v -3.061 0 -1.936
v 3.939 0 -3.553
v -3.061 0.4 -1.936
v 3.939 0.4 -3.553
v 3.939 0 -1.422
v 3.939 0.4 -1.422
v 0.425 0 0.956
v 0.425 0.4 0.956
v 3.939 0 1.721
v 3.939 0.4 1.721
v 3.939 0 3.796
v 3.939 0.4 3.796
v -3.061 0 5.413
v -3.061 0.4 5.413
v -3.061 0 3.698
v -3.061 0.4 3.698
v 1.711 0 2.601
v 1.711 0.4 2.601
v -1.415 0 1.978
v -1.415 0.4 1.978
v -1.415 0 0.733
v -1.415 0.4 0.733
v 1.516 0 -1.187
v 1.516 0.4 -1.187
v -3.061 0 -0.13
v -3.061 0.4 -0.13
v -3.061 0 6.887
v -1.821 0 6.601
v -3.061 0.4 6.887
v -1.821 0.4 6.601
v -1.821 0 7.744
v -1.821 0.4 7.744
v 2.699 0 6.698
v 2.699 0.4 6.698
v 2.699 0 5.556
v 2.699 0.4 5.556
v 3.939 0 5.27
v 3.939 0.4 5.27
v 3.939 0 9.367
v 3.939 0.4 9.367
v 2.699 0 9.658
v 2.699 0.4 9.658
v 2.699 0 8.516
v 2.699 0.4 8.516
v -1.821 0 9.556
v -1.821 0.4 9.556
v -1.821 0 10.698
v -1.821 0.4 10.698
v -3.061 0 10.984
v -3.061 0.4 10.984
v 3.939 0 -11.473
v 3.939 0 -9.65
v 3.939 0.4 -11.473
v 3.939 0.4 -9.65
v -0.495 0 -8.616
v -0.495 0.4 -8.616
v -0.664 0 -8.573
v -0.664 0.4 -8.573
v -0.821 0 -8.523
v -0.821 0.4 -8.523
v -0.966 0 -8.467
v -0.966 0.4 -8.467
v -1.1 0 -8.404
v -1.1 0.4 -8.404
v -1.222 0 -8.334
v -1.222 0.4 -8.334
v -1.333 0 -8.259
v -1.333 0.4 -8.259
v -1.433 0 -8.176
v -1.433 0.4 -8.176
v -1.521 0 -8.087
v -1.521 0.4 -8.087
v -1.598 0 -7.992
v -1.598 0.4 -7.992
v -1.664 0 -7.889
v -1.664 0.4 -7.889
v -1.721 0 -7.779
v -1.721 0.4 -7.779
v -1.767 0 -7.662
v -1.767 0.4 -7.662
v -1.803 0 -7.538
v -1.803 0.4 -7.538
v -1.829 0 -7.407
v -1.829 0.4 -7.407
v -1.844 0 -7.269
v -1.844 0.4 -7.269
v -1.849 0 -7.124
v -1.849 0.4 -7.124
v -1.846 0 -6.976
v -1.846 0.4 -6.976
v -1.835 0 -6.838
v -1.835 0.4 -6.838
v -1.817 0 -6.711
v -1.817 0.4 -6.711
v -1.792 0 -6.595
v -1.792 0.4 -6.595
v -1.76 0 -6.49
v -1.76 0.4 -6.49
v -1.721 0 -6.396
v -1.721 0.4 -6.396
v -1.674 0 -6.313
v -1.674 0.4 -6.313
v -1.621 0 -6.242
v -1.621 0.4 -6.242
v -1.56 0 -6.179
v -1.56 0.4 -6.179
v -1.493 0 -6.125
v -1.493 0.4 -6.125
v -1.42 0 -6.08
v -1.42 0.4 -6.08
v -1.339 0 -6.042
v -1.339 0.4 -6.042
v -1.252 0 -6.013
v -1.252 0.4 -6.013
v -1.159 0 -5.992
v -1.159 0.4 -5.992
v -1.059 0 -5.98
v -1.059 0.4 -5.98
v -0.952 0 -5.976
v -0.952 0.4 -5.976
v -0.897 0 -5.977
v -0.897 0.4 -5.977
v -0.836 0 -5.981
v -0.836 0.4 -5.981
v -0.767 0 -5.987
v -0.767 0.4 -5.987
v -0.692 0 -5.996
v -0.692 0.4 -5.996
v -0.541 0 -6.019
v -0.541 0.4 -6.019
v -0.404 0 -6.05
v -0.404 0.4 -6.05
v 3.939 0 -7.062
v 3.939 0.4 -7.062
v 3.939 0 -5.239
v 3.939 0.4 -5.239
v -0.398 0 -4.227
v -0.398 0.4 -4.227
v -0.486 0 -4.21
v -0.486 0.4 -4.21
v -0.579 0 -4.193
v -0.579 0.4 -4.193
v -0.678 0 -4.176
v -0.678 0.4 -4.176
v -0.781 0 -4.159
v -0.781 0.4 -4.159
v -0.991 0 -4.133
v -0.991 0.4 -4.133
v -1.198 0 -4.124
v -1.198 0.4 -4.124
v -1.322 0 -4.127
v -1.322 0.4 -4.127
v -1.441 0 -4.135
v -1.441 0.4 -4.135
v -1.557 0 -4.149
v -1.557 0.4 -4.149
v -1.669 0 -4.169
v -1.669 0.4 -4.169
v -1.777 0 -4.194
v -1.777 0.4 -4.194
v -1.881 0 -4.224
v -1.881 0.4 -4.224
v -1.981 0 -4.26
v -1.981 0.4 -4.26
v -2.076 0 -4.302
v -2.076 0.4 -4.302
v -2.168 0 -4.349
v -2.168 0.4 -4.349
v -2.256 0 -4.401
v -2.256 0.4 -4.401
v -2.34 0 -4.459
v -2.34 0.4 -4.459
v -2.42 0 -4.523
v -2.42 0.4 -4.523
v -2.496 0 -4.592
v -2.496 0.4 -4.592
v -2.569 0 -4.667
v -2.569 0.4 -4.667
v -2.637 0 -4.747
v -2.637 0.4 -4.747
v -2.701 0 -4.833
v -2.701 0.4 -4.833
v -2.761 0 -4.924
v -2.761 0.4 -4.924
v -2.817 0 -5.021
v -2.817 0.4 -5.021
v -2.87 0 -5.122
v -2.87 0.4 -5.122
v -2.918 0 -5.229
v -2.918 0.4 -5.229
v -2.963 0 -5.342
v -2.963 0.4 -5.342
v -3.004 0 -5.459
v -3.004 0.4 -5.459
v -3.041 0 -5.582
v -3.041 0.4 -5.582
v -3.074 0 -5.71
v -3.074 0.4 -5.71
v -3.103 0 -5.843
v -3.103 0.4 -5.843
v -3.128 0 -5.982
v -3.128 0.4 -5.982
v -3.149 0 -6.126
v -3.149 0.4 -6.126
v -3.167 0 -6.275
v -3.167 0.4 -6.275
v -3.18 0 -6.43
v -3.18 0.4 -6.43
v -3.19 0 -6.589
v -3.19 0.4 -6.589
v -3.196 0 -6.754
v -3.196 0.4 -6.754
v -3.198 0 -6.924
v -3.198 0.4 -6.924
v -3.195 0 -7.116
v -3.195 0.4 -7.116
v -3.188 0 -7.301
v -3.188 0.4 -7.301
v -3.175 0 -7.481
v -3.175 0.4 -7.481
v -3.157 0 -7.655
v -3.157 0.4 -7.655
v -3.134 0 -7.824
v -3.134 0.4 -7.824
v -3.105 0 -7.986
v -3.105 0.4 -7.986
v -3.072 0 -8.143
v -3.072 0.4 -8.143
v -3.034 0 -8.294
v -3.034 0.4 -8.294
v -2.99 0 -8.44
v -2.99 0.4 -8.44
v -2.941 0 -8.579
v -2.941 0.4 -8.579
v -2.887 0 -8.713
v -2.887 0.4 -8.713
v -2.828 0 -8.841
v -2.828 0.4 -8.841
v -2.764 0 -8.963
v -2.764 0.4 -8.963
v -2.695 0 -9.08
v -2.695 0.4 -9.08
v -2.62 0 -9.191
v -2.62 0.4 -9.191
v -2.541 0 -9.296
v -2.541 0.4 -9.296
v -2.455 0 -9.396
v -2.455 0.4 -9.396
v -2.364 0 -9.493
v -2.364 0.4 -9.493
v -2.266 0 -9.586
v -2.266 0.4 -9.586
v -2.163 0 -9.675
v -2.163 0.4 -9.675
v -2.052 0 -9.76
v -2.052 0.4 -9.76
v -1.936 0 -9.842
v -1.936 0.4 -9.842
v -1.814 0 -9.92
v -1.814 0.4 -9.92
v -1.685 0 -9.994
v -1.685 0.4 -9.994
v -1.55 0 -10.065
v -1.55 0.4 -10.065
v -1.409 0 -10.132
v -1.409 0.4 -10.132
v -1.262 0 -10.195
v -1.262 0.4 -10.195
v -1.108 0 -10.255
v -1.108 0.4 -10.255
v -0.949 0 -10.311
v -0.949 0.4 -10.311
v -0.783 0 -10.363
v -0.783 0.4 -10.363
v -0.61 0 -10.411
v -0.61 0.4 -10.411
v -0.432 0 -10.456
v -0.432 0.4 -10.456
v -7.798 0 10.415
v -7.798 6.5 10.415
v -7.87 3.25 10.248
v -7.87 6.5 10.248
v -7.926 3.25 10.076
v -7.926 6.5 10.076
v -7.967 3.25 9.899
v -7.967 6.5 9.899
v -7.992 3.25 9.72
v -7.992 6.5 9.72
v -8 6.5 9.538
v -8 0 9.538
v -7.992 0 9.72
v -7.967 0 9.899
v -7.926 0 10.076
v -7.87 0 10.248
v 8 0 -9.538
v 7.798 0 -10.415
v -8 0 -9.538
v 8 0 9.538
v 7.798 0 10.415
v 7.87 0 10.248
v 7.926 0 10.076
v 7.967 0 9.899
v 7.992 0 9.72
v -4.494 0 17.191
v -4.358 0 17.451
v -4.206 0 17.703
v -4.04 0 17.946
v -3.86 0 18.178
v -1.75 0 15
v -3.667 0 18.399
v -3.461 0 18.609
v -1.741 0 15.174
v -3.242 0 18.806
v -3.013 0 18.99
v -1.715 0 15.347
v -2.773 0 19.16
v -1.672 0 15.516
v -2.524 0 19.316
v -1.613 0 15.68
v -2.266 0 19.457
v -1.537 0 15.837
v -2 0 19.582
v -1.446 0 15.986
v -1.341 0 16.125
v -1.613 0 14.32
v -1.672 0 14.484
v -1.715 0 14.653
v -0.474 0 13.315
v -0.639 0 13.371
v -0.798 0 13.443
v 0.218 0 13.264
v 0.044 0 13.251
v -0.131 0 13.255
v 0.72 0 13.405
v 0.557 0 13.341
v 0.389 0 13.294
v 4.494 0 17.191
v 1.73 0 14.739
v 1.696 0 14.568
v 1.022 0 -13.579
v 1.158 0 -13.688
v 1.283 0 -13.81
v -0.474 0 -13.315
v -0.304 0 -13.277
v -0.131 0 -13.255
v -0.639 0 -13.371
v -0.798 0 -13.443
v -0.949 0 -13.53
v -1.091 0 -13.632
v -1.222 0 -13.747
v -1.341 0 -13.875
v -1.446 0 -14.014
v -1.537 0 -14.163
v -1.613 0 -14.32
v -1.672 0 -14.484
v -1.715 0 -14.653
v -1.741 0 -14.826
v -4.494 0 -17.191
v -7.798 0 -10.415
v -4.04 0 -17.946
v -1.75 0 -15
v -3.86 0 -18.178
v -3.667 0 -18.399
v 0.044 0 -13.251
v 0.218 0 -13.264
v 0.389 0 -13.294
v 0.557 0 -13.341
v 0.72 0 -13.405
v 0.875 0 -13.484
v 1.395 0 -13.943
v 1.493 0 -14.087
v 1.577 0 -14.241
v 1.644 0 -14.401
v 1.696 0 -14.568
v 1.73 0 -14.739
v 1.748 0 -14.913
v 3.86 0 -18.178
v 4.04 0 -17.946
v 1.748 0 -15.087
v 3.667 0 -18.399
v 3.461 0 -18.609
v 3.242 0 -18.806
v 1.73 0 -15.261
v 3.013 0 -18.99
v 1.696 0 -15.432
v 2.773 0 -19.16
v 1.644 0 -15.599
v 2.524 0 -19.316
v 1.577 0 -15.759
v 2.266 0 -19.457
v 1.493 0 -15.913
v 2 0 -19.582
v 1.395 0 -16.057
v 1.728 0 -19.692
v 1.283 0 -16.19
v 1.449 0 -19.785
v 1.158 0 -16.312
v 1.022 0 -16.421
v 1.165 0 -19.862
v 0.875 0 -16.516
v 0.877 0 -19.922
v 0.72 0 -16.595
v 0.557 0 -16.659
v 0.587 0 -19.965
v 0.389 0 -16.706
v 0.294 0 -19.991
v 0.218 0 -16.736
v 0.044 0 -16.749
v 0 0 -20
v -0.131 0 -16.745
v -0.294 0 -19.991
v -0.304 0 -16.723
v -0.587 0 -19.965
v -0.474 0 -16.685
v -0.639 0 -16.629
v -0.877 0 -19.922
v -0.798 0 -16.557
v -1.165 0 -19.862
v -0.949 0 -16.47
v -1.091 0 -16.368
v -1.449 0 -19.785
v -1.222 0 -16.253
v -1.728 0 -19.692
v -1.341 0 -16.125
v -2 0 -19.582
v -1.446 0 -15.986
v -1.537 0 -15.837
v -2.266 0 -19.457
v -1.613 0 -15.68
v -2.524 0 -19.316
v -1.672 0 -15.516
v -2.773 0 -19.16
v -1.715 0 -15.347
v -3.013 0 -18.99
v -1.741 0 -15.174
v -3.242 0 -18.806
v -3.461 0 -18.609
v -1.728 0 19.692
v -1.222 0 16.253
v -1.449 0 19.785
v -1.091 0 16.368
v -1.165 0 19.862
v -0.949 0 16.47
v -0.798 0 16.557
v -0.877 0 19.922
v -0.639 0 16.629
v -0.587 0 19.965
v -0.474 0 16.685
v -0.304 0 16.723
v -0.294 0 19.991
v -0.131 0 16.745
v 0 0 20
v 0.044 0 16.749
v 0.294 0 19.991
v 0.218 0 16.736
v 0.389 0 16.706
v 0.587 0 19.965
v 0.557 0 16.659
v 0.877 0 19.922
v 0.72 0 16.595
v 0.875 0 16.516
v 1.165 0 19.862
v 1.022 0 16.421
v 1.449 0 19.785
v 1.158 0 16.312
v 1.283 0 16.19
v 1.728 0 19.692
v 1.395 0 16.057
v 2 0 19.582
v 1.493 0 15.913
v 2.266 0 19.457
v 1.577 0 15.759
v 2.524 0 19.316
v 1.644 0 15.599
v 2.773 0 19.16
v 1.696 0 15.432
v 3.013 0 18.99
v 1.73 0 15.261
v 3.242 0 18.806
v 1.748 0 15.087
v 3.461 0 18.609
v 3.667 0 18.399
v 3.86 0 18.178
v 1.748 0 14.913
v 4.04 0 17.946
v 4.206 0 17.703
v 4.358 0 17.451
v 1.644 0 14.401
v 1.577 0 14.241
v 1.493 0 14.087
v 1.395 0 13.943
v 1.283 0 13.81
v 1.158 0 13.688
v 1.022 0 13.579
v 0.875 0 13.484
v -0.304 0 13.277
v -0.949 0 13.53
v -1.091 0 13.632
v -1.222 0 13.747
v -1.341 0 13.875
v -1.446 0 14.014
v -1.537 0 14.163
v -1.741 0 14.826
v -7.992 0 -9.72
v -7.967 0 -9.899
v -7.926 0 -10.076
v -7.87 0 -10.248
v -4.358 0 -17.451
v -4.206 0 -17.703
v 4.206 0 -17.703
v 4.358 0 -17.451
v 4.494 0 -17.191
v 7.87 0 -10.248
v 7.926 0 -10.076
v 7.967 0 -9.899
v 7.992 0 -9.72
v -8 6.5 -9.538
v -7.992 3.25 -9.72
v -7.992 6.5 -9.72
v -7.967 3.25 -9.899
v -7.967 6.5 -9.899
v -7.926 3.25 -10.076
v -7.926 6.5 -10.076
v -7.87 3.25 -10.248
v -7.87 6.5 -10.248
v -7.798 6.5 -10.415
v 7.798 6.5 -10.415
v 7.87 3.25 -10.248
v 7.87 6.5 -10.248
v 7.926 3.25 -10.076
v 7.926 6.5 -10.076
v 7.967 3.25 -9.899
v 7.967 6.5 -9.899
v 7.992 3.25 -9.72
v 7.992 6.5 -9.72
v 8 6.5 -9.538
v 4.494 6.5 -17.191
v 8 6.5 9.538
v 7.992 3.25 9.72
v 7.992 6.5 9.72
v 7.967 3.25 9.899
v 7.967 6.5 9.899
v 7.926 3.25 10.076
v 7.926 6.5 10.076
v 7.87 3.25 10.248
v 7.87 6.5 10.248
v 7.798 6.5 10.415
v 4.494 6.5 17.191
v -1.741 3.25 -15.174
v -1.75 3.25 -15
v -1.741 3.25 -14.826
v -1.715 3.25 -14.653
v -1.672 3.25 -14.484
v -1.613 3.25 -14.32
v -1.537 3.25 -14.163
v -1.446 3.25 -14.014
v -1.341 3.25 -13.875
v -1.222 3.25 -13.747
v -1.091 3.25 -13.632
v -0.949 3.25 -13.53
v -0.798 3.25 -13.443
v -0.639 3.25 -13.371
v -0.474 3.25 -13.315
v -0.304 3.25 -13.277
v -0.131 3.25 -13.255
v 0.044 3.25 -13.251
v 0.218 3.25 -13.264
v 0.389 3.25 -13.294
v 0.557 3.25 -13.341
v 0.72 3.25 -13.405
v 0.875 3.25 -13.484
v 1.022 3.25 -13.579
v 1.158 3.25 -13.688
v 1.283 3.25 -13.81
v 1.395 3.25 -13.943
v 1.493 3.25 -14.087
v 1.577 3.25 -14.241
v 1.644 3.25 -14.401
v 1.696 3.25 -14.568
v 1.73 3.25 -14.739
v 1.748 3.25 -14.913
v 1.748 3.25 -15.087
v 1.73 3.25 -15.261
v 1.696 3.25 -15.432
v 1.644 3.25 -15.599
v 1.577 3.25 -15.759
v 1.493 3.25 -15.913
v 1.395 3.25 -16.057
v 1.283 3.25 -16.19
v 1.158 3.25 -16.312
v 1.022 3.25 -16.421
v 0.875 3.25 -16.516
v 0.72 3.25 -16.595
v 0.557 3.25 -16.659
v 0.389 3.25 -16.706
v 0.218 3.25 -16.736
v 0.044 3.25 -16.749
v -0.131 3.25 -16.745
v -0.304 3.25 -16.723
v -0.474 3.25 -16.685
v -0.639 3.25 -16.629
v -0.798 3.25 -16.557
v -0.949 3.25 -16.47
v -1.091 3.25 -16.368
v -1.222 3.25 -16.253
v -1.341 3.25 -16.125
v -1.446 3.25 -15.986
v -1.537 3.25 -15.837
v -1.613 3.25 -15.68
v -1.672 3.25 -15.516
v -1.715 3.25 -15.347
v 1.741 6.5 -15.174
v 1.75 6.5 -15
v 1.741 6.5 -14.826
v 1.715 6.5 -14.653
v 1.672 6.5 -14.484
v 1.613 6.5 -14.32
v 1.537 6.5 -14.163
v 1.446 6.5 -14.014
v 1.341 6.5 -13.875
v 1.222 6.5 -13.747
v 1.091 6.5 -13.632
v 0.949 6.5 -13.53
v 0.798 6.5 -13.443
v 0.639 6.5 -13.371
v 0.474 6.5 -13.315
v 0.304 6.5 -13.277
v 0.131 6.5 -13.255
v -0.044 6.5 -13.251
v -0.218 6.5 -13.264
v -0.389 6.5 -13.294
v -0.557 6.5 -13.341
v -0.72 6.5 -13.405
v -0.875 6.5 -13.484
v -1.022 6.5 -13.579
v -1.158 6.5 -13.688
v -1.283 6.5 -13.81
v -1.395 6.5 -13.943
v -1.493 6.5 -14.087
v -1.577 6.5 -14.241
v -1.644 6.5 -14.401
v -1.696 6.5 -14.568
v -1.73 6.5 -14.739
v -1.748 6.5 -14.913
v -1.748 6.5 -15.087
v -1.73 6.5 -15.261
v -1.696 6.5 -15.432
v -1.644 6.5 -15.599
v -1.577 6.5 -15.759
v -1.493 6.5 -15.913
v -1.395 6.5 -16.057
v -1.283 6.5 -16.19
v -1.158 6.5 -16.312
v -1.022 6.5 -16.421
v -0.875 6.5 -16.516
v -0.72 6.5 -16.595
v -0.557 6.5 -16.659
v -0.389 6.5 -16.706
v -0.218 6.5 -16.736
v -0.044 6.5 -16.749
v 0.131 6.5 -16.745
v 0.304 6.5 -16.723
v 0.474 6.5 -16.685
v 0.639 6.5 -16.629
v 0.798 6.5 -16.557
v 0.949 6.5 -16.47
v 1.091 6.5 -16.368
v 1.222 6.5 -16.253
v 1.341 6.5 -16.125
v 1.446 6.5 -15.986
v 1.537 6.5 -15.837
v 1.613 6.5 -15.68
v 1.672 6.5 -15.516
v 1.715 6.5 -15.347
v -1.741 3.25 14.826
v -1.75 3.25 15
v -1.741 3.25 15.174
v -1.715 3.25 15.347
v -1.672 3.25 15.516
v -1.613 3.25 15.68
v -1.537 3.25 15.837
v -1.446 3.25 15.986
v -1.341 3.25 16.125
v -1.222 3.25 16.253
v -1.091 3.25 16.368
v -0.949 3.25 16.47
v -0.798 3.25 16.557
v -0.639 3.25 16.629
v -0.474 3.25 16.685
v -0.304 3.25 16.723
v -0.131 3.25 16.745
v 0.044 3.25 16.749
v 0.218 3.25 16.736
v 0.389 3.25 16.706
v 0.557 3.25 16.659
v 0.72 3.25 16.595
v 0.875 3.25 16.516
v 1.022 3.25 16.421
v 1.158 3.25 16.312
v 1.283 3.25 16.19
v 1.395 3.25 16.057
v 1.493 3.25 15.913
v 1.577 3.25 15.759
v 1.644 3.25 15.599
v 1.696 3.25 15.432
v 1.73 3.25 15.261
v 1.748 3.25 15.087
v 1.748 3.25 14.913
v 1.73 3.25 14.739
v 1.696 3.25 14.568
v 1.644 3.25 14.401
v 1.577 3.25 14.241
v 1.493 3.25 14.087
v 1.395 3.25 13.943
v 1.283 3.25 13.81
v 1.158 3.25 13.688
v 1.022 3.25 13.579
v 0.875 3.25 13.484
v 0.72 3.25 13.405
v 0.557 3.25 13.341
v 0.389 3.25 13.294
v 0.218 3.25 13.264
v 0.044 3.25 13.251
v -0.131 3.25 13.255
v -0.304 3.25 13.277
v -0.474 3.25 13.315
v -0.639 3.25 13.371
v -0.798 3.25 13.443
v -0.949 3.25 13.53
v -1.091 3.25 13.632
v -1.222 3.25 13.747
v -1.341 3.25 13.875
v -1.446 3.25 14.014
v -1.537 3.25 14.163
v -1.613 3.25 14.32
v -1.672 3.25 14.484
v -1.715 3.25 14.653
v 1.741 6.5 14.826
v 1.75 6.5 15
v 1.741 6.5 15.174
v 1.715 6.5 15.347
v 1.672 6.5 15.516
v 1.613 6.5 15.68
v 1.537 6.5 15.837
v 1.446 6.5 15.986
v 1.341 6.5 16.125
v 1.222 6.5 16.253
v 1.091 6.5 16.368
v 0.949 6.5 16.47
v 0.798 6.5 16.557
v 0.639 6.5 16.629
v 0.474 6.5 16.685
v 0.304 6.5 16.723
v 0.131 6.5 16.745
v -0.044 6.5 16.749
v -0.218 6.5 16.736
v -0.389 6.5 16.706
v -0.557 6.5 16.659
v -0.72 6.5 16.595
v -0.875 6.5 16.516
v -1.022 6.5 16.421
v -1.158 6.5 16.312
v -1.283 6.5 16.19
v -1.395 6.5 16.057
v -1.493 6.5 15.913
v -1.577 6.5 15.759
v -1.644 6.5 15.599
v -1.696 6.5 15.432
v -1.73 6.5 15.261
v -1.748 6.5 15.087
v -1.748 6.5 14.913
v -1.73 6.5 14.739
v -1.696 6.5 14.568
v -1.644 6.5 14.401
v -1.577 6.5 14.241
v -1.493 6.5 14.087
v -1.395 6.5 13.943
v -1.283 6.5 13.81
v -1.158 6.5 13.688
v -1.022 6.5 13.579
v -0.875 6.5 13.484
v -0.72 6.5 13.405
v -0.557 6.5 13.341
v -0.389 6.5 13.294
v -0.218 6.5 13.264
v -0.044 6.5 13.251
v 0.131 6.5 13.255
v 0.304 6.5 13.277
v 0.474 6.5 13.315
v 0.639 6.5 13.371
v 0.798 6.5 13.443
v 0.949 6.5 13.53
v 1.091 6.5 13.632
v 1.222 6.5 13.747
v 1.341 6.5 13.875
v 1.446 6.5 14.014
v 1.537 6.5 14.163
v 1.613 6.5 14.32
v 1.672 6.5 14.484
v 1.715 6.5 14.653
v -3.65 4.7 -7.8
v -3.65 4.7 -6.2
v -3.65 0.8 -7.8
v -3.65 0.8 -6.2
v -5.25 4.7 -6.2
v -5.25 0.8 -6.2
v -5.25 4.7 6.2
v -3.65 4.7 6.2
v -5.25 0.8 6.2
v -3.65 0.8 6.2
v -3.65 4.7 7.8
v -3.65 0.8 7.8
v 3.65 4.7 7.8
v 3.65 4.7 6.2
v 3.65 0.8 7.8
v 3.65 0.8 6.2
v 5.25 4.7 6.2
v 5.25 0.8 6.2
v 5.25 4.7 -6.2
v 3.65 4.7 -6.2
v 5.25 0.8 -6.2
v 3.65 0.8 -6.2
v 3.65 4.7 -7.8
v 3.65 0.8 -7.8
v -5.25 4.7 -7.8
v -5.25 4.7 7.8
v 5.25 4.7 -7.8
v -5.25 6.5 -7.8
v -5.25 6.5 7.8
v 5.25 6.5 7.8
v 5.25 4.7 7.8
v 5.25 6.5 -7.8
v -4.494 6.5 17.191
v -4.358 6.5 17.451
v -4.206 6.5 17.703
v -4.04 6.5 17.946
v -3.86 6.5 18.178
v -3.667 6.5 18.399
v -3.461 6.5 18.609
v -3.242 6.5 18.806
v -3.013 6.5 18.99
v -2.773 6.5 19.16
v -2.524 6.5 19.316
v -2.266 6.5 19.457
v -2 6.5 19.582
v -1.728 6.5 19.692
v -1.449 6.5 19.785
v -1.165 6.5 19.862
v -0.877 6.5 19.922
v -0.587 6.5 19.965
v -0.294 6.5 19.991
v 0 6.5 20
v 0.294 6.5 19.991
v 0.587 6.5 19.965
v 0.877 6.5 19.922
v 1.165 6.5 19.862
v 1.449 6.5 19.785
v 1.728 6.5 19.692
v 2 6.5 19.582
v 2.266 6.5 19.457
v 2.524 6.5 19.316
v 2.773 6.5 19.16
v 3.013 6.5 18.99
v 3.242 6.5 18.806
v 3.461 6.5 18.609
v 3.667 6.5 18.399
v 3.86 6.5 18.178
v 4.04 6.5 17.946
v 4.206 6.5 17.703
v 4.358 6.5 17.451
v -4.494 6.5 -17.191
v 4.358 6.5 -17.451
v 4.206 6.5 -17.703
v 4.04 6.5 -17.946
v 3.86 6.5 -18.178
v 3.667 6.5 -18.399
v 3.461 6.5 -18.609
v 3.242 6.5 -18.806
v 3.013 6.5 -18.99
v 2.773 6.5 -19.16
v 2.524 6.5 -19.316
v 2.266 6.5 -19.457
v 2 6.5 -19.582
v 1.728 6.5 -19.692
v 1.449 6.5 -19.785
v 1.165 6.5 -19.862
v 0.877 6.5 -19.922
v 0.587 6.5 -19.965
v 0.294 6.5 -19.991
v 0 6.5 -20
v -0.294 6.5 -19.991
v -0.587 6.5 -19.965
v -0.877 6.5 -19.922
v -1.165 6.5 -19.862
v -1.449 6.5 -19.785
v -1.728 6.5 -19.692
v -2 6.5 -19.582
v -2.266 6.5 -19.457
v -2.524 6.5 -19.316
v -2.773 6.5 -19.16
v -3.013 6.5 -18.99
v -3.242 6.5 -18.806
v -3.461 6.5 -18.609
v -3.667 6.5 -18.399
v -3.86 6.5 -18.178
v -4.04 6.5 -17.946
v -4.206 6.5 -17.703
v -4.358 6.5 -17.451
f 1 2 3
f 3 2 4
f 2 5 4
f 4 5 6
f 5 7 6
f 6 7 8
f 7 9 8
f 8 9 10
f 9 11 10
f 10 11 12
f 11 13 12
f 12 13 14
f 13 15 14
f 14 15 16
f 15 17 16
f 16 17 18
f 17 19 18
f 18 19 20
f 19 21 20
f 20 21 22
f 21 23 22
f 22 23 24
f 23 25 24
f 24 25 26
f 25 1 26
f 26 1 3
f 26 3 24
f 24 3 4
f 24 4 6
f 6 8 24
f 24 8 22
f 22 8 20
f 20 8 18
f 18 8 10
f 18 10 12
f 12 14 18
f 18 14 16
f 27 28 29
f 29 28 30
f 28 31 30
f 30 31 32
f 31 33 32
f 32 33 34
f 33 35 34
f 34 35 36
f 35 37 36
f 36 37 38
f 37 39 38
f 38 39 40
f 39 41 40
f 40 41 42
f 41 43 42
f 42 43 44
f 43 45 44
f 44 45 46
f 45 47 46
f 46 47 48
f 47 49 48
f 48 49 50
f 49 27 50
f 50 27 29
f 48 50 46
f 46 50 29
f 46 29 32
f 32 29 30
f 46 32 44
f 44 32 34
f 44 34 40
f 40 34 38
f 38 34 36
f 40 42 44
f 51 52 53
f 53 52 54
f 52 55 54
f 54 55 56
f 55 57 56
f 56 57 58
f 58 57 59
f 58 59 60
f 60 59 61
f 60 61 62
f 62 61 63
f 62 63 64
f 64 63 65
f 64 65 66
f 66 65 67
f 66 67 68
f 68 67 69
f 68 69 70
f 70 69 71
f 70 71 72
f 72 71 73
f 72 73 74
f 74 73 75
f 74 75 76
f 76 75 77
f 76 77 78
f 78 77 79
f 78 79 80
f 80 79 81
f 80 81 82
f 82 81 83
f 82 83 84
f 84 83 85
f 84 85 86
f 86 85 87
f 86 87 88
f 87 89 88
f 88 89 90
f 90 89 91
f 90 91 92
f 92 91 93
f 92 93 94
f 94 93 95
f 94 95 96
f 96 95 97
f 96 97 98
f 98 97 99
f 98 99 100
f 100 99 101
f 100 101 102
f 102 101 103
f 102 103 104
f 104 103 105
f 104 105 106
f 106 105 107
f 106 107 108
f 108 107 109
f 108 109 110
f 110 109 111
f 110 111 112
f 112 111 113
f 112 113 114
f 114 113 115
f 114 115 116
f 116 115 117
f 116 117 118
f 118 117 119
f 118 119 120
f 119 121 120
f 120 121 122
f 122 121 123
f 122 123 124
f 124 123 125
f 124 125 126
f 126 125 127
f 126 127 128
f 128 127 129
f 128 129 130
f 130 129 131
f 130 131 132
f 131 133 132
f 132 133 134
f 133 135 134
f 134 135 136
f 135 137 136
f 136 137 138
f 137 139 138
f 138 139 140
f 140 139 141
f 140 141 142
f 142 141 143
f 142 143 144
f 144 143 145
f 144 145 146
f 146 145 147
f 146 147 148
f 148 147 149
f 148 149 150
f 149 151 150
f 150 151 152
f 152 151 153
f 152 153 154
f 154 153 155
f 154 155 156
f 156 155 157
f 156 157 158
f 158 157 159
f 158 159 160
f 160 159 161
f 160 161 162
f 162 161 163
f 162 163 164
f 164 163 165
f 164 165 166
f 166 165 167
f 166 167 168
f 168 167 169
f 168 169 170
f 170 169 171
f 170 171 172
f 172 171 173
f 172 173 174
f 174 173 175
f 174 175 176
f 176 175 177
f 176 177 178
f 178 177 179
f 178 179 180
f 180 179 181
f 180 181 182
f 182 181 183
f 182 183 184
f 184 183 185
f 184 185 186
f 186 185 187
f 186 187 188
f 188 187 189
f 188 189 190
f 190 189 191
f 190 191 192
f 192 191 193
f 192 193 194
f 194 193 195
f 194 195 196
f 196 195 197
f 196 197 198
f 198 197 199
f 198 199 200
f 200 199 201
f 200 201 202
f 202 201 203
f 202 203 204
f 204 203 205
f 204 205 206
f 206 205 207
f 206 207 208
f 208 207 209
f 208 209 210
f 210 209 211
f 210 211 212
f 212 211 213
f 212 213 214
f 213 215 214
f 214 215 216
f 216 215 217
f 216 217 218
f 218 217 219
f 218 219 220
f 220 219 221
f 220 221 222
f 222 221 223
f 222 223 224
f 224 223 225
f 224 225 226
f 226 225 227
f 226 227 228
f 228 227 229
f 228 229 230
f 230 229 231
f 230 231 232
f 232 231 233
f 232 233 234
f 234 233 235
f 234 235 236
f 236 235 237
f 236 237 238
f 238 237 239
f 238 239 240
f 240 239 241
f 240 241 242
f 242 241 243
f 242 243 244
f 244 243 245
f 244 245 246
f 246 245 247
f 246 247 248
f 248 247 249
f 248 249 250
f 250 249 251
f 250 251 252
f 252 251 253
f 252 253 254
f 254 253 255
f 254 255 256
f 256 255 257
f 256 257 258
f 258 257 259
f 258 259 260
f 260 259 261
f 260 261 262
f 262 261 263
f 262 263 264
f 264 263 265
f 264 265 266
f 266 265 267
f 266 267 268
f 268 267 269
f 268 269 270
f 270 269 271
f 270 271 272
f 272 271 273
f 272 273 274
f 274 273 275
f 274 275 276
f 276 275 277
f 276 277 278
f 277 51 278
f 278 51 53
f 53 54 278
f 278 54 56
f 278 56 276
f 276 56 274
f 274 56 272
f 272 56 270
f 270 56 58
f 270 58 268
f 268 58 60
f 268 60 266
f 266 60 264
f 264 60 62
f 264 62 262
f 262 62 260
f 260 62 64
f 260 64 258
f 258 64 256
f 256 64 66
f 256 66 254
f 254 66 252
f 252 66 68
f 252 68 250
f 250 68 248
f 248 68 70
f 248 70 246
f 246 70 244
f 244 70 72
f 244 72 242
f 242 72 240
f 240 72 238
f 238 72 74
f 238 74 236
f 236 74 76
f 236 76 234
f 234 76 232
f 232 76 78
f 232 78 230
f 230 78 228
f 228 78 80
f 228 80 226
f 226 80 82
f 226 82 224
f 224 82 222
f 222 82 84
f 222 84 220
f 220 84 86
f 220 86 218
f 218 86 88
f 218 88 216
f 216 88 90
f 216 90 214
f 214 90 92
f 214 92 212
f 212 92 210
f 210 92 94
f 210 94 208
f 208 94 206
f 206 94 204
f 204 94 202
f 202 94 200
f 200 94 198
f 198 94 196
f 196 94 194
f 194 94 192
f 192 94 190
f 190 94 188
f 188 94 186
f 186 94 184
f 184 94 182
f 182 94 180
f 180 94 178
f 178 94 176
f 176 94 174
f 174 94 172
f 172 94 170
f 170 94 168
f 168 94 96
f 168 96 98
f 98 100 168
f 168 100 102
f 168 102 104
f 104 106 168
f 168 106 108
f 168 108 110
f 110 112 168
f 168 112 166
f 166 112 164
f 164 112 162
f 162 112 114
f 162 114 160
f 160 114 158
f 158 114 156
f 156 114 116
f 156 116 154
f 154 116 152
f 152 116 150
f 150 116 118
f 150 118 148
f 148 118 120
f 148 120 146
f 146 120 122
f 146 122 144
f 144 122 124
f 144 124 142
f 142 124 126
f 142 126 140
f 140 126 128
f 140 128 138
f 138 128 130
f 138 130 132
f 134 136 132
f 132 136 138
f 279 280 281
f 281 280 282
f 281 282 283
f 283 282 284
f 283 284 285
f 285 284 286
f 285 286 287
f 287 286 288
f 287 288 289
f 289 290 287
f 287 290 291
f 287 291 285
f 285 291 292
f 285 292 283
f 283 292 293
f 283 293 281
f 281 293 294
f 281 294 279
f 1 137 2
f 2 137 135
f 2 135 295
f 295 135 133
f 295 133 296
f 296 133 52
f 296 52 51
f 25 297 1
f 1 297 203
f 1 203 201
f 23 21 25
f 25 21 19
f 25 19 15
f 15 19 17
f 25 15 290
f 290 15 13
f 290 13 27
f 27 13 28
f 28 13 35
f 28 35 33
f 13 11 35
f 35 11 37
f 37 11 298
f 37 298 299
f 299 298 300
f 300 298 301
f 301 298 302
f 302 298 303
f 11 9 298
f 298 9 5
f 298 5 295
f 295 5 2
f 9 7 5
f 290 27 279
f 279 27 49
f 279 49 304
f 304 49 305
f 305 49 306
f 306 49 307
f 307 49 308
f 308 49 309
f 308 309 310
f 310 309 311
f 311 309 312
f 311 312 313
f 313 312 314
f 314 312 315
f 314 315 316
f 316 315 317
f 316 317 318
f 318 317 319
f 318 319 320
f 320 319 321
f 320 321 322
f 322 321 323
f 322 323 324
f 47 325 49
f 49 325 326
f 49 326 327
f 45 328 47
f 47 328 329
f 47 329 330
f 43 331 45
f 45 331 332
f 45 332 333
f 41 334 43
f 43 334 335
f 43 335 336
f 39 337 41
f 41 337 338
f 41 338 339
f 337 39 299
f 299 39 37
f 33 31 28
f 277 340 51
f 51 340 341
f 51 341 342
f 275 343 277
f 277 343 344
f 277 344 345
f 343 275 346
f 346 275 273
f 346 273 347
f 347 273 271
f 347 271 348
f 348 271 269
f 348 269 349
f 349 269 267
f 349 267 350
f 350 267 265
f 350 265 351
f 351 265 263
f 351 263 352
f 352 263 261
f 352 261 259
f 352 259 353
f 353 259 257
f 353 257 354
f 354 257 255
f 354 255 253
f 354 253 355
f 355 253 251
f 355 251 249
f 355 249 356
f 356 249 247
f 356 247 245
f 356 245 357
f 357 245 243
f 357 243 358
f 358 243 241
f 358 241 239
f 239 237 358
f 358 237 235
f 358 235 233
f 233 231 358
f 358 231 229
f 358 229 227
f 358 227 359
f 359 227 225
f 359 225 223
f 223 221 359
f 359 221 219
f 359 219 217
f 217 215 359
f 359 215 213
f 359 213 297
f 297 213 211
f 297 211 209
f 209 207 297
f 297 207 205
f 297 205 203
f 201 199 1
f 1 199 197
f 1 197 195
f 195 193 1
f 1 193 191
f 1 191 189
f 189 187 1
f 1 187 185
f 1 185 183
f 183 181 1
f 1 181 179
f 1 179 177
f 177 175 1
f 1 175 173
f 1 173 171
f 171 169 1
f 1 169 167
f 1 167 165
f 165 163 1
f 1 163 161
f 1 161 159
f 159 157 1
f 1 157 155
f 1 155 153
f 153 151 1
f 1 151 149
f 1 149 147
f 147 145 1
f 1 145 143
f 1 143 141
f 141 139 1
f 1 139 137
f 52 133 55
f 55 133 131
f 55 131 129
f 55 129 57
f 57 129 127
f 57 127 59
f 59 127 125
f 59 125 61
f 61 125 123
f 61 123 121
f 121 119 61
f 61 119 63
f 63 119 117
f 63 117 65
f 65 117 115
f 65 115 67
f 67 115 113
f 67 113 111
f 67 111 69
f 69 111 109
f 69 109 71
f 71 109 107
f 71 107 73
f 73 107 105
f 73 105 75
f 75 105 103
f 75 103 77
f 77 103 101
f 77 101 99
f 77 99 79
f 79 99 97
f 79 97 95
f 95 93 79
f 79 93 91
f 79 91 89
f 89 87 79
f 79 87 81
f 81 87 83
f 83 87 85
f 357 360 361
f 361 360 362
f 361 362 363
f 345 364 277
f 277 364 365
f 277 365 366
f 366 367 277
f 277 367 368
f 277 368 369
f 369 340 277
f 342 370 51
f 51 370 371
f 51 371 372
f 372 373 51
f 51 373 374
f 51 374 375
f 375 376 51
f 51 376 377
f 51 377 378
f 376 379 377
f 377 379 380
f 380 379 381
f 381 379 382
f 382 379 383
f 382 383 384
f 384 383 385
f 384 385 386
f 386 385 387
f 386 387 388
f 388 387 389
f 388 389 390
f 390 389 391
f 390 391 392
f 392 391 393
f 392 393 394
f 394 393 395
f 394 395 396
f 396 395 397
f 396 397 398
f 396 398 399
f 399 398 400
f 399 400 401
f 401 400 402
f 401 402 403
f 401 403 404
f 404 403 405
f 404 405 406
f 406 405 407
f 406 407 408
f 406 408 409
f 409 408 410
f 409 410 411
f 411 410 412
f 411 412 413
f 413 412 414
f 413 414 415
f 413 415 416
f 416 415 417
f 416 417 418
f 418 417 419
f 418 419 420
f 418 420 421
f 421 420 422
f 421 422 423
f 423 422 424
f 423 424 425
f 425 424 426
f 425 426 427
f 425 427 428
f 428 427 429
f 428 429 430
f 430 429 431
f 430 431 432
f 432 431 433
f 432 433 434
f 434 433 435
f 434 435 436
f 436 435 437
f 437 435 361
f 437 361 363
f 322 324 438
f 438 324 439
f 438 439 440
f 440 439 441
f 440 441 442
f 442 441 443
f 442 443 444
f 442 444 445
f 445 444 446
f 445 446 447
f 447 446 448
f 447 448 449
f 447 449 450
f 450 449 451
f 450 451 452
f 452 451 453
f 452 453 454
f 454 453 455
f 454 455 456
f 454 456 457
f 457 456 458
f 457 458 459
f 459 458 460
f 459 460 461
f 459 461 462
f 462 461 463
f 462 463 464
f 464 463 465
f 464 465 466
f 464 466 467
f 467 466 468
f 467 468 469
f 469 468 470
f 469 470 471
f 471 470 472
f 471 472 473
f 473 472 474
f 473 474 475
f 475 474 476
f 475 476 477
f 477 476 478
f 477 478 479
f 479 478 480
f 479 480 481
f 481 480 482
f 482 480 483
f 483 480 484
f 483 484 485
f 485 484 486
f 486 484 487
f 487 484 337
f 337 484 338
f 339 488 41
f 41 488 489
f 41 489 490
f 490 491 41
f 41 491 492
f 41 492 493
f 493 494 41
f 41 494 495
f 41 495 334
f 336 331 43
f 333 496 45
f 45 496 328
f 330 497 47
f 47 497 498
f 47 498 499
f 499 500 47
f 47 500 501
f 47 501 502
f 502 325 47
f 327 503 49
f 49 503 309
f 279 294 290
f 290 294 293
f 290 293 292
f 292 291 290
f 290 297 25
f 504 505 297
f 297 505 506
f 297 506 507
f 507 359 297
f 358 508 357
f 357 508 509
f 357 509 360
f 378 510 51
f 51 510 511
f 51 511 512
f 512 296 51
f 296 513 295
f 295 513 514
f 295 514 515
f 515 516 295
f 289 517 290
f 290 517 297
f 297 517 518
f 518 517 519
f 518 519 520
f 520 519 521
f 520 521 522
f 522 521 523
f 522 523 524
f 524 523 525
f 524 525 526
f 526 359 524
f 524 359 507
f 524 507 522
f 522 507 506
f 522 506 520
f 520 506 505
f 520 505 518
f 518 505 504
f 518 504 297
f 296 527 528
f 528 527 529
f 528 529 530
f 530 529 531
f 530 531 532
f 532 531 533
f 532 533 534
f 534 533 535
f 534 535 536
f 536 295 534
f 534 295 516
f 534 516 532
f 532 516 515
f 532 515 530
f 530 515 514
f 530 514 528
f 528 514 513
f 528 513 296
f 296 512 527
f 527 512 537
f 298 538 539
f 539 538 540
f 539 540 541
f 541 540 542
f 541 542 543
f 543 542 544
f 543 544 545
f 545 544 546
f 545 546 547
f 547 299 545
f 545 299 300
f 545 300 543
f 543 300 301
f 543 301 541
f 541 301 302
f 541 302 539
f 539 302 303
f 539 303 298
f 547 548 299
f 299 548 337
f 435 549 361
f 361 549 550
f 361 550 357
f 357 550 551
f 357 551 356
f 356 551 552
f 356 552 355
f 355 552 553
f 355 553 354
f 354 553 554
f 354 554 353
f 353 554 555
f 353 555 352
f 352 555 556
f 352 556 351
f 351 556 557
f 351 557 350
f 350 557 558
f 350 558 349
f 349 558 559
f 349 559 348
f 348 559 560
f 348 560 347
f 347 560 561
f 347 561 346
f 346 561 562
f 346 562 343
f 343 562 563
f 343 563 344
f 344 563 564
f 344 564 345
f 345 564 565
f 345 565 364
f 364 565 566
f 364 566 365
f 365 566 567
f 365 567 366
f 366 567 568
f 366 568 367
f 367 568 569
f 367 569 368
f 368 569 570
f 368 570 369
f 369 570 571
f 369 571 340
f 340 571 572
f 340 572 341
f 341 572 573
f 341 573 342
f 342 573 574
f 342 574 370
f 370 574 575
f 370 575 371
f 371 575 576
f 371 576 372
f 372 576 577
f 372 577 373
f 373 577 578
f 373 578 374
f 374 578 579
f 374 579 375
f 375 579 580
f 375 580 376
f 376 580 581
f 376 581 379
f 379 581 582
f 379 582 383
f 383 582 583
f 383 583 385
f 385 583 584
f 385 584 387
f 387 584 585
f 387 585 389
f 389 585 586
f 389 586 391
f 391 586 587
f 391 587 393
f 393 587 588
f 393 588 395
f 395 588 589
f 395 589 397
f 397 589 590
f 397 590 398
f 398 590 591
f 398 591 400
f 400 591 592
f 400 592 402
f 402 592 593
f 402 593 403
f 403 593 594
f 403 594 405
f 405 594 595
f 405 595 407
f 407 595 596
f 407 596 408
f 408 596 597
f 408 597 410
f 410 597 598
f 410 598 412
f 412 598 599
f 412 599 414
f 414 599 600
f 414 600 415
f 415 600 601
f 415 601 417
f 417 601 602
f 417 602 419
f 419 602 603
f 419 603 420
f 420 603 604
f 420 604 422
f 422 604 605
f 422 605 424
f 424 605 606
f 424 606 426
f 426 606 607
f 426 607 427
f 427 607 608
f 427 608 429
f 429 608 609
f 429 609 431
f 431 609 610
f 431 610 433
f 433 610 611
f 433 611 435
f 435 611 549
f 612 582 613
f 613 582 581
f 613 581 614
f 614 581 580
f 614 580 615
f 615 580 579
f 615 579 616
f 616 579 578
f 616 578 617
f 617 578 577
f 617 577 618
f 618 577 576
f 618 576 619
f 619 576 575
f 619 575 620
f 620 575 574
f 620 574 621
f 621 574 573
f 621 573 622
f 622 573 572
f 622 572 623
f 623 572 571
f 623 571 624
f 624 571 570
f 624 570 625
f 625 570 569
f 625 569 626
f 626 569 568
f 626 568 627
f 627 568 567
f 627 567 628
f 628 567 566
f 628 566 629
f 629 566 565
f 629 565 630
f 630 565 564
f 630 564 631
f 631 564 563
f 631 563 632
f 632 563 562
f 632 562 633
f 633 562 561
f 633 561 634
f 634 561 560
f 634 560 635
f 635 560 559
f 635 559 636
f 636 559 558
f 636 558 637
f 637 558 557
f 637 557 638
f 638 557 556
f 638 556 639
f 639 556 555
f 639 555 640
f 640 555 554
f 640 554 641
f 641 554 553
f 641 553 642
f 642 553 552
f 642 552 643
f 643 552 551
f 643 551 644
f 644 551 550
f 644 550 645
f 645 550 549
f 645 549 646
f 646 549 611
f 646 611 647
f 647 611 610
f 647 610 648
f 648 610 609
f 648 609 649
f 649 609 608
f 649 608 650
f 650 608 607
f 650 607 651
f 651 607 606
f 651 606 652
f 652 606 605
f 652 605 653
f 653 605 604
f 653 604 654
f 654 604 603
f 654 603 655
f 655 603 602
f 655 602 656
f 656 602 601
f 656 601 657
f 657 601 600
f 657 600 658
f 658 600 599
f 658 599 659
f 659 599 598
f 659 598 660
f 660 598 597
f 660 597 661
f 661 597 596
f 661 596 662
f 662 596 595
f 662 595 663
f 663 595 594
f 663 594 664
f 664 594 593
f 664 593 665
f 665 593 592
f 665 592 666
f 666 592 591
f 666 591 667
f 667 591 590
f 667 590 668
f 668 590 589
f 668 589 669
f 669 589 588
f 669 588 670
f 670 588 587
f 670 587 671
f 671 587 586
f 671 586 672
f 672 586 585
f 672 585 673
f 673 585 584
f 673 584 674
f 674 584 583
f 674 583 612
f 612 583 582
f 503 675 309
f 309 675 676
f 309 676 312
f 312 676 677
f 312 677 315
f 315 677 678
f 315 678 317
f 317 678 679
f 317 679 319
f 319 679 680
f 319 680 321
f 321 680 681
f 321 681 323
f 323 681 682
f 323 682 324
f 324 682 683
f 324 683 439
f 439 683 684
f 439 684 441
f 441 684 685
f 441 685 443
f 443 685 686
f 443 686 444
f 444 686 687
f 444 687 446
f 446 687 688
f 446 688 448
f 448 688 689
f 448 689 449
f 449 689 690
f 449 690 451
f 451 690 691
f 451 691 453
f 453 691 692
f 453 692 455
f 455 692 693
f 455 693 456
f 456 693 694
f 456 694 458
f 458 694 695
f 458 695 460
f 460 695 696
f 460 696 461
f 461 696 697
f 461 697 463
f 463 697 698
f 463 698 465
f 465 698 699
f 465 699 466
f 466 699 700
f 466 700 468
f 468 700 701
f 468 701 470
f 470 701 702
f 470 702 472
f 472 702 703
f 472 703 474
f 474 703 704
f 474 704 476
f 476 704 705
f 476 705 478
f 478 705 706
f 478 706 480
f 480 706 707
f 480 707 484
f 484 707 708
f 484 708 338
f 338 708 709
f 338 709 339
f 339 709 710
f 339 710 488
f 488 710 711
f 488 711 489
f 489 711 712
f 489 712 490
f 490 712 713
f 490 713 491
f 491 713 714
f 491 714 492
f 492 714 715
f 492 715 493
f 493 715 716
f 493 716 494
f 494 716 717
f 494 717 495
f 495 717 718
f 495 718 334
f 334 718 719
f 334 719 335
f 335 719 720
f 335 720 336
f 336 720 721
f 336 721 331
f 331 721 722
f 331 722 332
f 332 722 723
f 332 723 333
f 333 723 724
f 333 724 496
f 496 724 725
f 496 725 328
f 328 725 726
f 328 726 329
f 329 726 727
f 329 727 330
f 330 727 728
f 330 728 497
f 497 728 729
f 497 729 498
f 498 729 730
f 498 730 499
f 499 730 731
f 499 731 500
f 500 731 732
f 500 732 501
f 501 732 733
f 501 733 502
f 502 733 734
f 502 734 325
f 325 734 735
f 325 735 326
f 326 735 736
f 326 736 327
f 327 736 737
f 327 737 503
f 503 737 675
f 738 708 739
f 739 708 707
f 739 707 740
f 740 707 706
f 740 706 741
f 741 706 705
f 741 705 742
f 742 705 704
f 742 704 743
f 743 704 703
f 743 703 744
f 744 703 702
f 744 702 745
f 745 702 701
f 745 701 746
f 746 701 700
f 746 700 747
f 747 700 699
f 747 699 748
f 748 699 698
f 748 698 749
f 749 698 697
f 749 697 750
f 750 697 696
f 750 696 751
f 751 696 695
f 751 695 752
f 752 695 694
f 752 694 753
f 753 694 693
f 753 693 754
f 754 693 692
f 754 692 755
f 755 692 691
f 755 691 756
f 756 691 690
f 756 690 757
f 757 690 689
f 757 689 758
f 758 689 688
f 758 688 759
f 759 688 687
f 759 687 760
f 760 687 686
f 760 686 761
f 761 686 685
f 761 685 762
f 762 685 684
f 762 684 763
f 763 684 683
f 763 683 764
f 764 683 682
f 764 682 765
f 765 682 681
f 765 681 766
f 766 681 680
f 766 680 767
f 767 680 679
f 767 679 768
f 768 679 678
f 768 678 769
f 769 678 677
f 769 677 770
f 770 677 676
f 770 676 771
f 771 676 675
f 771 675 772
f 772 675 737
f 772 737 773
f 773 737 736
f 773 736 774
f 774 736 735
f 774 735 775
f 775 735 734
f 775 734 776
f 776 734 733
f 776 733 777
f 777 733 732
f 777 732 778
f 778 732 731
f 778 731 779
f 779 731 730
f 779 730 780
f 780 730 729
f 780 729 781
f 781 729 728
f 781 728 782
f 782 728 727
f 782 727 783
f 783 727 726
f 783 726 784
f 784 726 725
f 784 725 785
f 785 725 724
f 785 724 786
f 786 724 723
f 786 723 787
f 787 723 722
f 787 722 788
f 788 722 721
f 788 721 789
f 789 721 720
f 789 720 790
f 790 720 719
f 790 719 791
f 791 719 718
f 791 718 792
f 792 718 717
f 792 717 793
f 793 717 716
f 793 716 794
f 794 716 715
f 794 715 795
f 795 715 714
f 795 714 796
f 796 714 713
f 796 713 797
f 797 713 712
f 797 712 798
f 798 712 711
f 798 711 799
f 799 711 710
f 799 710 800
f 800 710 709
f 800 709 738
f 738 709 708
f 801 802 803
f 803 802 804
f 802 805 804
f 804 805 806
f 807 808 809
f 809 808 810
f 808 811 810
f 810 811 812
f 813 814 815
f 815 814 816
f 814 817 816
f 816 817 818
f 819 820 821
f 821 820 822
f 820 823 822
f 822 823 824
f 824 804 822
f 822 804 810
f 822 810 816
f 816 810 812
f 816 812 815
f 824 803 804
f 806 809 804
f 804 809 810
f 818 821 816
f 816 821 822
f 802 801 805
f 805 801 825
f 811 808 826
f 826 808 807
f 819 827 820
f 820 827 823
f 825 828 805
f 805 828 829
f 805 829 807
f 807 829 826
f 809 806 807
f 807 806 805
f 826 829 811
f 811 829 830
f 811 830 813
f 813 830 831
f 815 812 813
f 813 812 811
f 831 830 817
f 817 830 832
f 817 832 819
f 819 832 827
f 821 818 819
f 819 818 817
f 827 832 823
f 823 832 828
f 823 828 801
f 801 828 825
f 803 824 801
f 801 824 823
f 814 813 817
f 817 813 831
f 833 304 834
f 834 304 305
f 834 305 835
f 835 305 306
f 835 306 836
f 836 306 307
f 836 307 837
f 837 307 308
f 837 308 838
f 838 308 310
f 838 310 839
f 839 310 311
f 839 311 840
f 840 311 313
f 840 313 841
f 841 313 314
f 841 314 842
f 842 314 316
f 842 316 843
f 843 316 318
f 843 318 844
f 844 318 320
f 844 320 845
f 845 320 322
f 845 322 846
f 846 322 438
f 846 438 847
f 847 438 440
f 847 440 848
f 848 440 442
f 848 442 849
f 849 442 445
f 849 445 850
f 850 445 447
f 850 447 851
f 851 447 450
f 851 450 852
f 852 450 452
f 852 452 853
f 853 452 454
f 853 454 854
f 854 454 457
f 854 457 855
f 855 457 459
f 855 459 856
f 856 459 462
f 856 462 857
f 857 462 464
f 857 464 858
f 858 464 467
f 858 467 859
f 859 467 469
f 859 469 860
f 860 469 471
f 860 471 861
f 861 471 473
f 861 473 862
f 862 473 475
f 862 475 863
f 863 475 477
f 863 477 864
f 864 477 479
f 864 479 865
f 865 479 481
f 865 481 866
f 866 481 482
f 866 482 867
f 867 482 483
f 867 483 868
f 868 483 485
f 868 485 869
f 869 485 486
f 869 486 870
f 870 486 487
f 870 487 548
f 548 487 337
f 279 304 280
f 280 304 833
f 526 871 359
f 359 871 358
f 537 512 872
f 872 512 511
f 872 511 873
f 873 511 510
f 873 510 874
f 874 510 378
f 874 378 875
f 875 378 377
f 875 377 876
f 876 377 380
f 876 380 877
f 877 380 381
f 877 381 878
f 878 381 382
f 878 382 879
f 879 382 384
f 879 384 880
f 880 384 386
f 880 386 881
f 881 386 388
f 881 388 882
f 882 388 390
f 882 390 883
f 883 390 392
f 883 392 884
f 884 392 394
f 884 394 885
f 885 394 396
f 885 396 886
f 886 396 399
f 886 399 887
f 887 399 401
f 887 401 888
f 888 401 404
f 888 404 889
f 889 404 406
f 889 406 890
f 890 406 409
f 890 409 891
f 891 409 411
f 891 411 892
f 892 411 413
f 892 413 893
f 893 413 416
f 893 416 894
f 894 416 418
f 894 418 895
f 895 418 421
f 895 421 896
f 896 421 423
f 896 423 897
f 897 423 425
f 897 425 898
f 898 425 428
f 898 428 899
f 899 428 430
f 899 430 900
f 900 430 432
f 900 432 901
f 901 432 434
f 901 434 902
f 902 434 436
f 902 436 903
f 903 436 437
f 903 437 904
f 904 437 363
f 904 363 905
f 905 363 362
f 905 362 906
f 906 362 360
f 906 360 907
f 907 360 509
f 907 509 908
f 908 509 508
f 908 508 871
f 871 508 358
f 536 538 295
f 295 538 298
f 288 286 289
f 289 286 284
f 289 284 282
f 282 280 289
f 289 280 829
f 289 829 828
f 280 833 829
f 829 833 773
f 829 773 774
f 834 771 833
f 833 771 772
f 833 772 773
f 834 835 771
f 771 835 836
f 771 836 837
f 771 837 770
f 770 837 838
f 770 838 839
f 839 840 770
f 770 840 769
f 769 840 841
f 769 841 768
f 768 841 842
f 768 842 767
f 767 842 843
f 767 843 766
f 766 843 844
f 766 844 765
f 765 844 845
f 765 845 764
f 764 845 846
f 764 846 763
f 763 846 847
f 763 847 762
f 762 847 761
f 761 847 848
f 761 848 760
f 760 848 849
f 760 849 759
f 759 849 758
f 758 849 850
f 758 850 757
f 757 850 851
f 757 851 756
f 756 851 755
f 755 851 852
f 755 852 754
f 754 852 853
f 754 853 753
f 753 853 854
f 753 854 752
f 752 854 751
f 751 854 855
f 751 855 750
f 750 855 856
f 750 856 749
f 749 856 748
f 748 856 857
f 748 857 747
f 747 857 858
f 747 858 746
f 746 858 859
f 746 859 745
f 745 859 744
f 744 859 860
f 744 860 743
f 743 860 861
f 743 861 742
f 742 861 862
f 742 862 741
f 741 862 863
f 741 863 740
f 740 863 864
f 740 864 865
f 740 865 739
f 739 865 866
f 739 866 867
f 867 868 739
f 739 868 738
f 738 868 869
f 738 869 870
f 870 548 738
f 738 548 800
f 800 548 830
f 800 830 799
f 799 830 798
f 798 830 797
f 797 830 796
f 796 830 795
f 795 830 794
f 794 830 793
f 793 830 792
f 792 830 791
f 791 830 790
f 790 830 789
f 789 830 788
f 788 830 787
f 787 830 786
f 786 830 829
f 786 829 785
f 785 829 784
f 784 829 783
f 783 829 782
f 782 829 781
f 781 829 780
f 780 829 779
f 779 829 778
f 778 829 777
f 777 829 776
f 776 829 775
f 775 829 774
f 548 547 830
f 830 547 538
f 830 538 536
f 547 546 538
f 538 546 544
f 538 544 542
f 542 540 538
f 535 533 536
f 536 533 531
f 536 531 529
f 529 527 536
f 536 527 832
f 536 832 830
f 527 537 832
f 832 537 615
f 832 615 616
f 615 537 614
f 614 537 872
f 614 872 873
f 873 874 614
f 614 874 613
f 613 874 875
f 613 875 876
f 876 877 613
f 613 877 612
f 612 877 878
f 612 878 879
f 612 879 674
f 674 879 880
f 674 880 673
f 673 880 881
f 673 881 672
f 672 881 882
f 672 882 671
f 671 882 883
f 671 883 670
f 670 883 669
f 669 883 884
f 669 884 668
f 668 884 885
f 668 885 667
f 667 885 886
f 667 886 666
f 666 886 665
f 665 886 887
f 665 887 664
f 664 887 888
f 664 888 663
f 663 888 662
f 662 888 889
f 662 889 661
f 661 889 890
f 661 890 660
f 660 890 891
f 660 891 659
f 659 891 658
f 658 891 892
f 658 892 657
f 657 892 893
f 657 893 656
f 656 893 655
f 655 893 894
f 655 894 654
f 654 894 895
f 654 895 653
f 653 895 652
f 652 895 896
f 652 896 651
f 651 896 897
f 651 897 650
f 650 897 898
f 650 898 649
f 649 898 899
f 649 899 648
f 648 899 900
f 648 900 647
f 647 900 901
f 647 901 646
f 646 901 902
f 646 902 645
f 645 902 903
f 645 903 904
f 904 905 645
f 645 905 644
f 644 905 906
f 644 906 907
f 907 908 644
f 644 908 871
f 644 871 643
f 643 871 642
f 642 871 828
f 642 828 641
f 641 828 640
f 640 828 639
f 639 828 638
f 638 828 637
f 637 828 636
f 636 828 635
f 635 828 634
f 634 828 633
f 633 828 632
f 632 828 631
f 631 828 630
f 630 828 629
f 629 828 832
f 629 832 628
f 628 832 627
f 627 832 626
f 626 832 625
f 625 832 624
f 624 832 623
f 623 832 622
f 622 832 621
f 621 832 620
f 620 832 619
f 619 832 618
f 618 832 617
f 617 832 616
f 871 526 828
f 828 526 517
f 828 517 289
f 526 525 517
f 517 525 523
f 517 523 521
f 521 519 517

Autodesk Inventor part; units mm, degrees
ref_plane "YZ Plane" through (0, 0, 0) normal (1, 0, 0) x (0, 1, 0)
ref_plane "XZ Plane" through (0, 0, 0) normal (0, 1, 0) x (-1, 0, 0)
ref_plane "XY Plane" through (0, 0, 0) normal (0, 0, 1) x (1, 0, 0)
sketch "スケッチ1" plane through (0, 0, 0) normal (0, 1, 0) x (-1, 0, 0)
  line L0 (-8, 10) -> (8, 10)
  line L1 (8, 10) -> (8, -10)
  line L2 (8, -10) -> (-8, -10)
  line L3 (-8, -10) -> (-8, 10)
  line L4 (-8, 10) -> (8, -10) construction
  line L5 (8, 10) -> (-8, -10) construction
  circle A0 centre (0, 15) radius 5
  circle A1 centre (0, -15) radius 5
  line L6 (4.4944, 17.191) -> (8, 10)
  line L7 (-8, 10) -> (-4.4944, 17.191)
  line L8 (4.4944, -17.191) -> (8, -10)
  line L9 (-8, -10) -> (-4.4944, -17.191)
  point P0 (0, 0)
  dimension "d0" = 16
  dimension "d1" = 20
  dimension "d2" = 10
  dimension "d3" = 10
extrude "押し出し1" add sketch "スケッチ1" along normal blind 6.5
sketch "スケッチ2" plane through (0, 6.5, 0) normal (0, 1, 0) x (1, 0, 0)
  line L0 (5.25, -7.8) -> (-5.25, -7.8)
  line L1 (-5.25, -7.8) -> (-5.25, 7.8)
  line L2 (-5.25, 7.8) -> (5.25, 7.8)
  line L3 (5.25, 7.8) -> (5.25, -7.8)
  line L4 (5.25, -7.8) -> (-5.25, 7.8) construction
  line L5 (-5.25, -7.8) -> (5.25, 7.8) construction
  point P0 (0, 0)
  dimension "d6" = 10.5
  dimension "d7" = 15.6
extrude "押し出し2" cut sketch "スケッチ2" against normal blind 1.8
sketch "スケッチ3" plane through (0, 4.7, 0) normal (0, 1, 0) x (1, 0, 0)
  line L0 (-5.25, 7.8) -> (5.25, 7.8) projected
  line L1 (-5.25, -7.8) -> (-5.25, 7.8) projected
  line L2 (5.25, -7.8) -> (-5.25, -7.8) projected
  line L3 (5.25, 7.8) -> (5.25, -7.8) projected
  line L4 (-5.25, -7.8) -> (-3.65, -7.8)
  line L5 (-3.65, -7.8) -> (-3.65, -6.2)
  line L6 (-3.65, -6.2) -> (-5.25, -6.2)
  line L7 (-5.25, -6.2) -> (-5.25, -7.8)
  line L8 (5.25, -7.8) -> (3.65, -7.8)
  line L9 (3.65, -7.8) -> (3.65, -6.2)
  line L10 (3.65, -6.2) -> (5.25, -6.2)
  line L11 (5.25, -6.2) -> (5.25, -7.8)
  line L12 (-5.25, 7.8) -> (-3.65, 7.8)
  line L13 (-3.65, 7.8) -> (-3.65, 6.2)
  line L14 (-3.65, 6.2) -> (-5.25, 6.2)
  line L15 (-5.25, 6.2) -> (-5.25, 7.8)
  line L16 (-5.25, 7.8) -> (5.25, 7.8) projected
  line L17 (5.25, 7.8) -> (3.65, 7.8)
  line L18 (3.65, 7.8) -> (3.65, 6.2)
  line L19 (3.65, 6.2) -> (5.25, 6.2)
  line L20 (5.25, 6.2) -> (5.25, 7.8)
  point P0 (0, 0)
  point P1 (-5.25, 6.2)
  point P2 (3.65, -7.8)
  dimension "d10" = 1.6
  dimension "d11" = 1.6
  dimension "d12" = 1.6
  dimension "d13" = 1.6
  dimension "d14" = 1.6
  dimension "d15" = 1.6
  dimension "d16" = 1.6
  dimension "d17" = 1.6
extrude "押し出し3" cut sketch "スケッチ3" against normal blind 3.9 contours L0 L18 L19 L3 L10 L9 L2 L5 L6 L1 L14 L13
sketch "スケッチ4" plane through (0, 6.5, 0) normal (0, 1, 0) x (1, 0, 0)
  arc A0 (-4.4944, -17.191) -> (4.4944, -17.191) centre (0, -15) ccw projected
  arc A1 (4.4944, 17.191) -> (-4.4944, 17.191) centre (0, 15) ccw projected
  point P0 (0, 0)
hole "穴1" at (0, 6.5, 15) at (0, 6.5, -15) direction (0, -1, 0) diameter 3.5 end through all
fillet "フィレット1" radius 2 4 edges at (8, 3.25, 10) (8, 3.25, -10) (-8, 3.25, -10) (-8, 3.25, 10)
sketch "スケッチ5" plane through (0, 0, 0) normal (0, -1, 0) x (1, 0, 0)
  line L0 (3.9393, 10.9499) -> (3.9393, -11.5207) construction
  line L1 (3.9393, -11.5207) -> (-3.7897, -11.5207) construction
  line L2 (-3.7897, -11.5207) -> (-3.7897, 10.9499) construction
  line L3 (-3.7897, 10.9499) -> (3.9393, 10.9499) construction
  line L4 (-3.0607, 6.887) -> (-3.0607, 10.9842)
  line L5 (-3.0607, 10.9842) -> (-1.8207, 10.6984)
  line L6 (-1.8207, 10.6984) -> (-1.8207, 9.5556)
  line L7 (-1.8207, 9.5556) -> (2.6993, 8.5156)
  line L8 (2.6993, 8.5156) -> (2.6993, 9.6584)
  line L9 (2.6993, 9.6584) -> (3.9393, 9.367)
  line L10 (3.9393, 9.367) -> (3.9393, 5.2699)
  line L11 (3.9393, 5.2699) -> (2.6993, 5.5556)
  line L12 (2.6993, 5.5556) -> (2.6993, 6.6984)
  line L13 (2.6993, 6.6984) -> (-1.8207, 7.7442)
  line L14 (-1.8207, 7.7442) -> (-1.8207, 6.6013)
  line L15 (-1.8207, 6.6013) -> (-3.0607, 6.887)
  line L16 (-3.0607, -1.9358) -> (-3.0607, -0.1301)
  line L17 (-3.0607, -0.1301) -> (1.5164, -1.1873)
  line L18 (1.5164, -1.1873) -> (-1.415, 0.7327)
  line L19 (-1.415, 0.7327) -> (-1.415, 1.9784)
  line L20 (-1.415, 1.9784) -> (1.7107, 2.6013)
  line L21 (1.7107, 2.6013) -> (-3.0607, 3.6984)
  line L22 (-3.0607, 3.6984) -> (-3.0607, 5.4127)
  line L23 (-3.0607, 5.4127) -> (3.9393, 3.7956)
  line L24 (3.9393, 3.7956) -> (3.9393, 1.7213)
  line L25 (3.9393, 1.7213) -> (0.425, 0.9556)
  line L26 (0.425, 0.9556) -> (3.9393, -1.4216)
  line L27 (3.9393, -1.4216) -> (3.9393, -3.553)
  line L28 (3.9393, -3.553) -> (-3.0607, -1.9358)
  line L29 (3.9393, -11.473) -> (-0.4322, -10.4558)
  spline S0 degree 2 poles (-0.4322, -10.4558) (-1.8836, -10.113) (-3.1979, -8.4787) (-3.1979, -6.9244) knots 0 0 0 1 2 2 2
  spline S1 degree 2 poles (-3.1979, -6.9244) (-3.1979, -5.5416) (-2.2036, -4.1244) (-1.1979, -4.1244) knots 0 0 0 1 2 2 2
  spline S2 degree 2 poles (-1.1979, -4.1244) (-0.9922, -4.1244) (-0.5693, -4.193) (-0.3979, -4.2273) knots 0 0 0 1 2 2 2
  line L30 (-0.3979, -4.2273) -> (3.9393, -5.2387)
  line L31 (3.9393, -5.2387) -> (3.9393, -7.0616)
  line L32 (3.9393, -7.0616) -> (-0.4036, -6.0501)
  spline S3 degree 2 poles (-0.4036, -6.0501) (-0.535, -6.0158) (-0.8493, -5.9758) (-0.9522, -5.9758) knots 0 0 0 1 2 2 2
  spline S4 degree 2 poles (-0.9522, -5.9758) (-1.3922, -5.9758) (-1.8493, -6.5073) (-1.8493, -7.1244) knots 0 0 0 1 2 2 2
  spline S5 degree 2 poles (-1.8493, -7.1244) (-1.8493, -7.7187) (-1.1922, -8.4558) (-0.495, -8.6158) knots 0 0 0 1 2 2 2
  line L33 (-0.495, -8.6158) -> (3.9393, -9.6501)
  line L34 (3.9393, -9.6501) -> (3.9393, -11.473)
  point P0 (0, 0)
extrude "押し出し4" cut sketch "スケッチ5" against normal blind 0.4
equation "\"d3\" = d2"
properties part number "3D_bno055_top_3D プリント"
